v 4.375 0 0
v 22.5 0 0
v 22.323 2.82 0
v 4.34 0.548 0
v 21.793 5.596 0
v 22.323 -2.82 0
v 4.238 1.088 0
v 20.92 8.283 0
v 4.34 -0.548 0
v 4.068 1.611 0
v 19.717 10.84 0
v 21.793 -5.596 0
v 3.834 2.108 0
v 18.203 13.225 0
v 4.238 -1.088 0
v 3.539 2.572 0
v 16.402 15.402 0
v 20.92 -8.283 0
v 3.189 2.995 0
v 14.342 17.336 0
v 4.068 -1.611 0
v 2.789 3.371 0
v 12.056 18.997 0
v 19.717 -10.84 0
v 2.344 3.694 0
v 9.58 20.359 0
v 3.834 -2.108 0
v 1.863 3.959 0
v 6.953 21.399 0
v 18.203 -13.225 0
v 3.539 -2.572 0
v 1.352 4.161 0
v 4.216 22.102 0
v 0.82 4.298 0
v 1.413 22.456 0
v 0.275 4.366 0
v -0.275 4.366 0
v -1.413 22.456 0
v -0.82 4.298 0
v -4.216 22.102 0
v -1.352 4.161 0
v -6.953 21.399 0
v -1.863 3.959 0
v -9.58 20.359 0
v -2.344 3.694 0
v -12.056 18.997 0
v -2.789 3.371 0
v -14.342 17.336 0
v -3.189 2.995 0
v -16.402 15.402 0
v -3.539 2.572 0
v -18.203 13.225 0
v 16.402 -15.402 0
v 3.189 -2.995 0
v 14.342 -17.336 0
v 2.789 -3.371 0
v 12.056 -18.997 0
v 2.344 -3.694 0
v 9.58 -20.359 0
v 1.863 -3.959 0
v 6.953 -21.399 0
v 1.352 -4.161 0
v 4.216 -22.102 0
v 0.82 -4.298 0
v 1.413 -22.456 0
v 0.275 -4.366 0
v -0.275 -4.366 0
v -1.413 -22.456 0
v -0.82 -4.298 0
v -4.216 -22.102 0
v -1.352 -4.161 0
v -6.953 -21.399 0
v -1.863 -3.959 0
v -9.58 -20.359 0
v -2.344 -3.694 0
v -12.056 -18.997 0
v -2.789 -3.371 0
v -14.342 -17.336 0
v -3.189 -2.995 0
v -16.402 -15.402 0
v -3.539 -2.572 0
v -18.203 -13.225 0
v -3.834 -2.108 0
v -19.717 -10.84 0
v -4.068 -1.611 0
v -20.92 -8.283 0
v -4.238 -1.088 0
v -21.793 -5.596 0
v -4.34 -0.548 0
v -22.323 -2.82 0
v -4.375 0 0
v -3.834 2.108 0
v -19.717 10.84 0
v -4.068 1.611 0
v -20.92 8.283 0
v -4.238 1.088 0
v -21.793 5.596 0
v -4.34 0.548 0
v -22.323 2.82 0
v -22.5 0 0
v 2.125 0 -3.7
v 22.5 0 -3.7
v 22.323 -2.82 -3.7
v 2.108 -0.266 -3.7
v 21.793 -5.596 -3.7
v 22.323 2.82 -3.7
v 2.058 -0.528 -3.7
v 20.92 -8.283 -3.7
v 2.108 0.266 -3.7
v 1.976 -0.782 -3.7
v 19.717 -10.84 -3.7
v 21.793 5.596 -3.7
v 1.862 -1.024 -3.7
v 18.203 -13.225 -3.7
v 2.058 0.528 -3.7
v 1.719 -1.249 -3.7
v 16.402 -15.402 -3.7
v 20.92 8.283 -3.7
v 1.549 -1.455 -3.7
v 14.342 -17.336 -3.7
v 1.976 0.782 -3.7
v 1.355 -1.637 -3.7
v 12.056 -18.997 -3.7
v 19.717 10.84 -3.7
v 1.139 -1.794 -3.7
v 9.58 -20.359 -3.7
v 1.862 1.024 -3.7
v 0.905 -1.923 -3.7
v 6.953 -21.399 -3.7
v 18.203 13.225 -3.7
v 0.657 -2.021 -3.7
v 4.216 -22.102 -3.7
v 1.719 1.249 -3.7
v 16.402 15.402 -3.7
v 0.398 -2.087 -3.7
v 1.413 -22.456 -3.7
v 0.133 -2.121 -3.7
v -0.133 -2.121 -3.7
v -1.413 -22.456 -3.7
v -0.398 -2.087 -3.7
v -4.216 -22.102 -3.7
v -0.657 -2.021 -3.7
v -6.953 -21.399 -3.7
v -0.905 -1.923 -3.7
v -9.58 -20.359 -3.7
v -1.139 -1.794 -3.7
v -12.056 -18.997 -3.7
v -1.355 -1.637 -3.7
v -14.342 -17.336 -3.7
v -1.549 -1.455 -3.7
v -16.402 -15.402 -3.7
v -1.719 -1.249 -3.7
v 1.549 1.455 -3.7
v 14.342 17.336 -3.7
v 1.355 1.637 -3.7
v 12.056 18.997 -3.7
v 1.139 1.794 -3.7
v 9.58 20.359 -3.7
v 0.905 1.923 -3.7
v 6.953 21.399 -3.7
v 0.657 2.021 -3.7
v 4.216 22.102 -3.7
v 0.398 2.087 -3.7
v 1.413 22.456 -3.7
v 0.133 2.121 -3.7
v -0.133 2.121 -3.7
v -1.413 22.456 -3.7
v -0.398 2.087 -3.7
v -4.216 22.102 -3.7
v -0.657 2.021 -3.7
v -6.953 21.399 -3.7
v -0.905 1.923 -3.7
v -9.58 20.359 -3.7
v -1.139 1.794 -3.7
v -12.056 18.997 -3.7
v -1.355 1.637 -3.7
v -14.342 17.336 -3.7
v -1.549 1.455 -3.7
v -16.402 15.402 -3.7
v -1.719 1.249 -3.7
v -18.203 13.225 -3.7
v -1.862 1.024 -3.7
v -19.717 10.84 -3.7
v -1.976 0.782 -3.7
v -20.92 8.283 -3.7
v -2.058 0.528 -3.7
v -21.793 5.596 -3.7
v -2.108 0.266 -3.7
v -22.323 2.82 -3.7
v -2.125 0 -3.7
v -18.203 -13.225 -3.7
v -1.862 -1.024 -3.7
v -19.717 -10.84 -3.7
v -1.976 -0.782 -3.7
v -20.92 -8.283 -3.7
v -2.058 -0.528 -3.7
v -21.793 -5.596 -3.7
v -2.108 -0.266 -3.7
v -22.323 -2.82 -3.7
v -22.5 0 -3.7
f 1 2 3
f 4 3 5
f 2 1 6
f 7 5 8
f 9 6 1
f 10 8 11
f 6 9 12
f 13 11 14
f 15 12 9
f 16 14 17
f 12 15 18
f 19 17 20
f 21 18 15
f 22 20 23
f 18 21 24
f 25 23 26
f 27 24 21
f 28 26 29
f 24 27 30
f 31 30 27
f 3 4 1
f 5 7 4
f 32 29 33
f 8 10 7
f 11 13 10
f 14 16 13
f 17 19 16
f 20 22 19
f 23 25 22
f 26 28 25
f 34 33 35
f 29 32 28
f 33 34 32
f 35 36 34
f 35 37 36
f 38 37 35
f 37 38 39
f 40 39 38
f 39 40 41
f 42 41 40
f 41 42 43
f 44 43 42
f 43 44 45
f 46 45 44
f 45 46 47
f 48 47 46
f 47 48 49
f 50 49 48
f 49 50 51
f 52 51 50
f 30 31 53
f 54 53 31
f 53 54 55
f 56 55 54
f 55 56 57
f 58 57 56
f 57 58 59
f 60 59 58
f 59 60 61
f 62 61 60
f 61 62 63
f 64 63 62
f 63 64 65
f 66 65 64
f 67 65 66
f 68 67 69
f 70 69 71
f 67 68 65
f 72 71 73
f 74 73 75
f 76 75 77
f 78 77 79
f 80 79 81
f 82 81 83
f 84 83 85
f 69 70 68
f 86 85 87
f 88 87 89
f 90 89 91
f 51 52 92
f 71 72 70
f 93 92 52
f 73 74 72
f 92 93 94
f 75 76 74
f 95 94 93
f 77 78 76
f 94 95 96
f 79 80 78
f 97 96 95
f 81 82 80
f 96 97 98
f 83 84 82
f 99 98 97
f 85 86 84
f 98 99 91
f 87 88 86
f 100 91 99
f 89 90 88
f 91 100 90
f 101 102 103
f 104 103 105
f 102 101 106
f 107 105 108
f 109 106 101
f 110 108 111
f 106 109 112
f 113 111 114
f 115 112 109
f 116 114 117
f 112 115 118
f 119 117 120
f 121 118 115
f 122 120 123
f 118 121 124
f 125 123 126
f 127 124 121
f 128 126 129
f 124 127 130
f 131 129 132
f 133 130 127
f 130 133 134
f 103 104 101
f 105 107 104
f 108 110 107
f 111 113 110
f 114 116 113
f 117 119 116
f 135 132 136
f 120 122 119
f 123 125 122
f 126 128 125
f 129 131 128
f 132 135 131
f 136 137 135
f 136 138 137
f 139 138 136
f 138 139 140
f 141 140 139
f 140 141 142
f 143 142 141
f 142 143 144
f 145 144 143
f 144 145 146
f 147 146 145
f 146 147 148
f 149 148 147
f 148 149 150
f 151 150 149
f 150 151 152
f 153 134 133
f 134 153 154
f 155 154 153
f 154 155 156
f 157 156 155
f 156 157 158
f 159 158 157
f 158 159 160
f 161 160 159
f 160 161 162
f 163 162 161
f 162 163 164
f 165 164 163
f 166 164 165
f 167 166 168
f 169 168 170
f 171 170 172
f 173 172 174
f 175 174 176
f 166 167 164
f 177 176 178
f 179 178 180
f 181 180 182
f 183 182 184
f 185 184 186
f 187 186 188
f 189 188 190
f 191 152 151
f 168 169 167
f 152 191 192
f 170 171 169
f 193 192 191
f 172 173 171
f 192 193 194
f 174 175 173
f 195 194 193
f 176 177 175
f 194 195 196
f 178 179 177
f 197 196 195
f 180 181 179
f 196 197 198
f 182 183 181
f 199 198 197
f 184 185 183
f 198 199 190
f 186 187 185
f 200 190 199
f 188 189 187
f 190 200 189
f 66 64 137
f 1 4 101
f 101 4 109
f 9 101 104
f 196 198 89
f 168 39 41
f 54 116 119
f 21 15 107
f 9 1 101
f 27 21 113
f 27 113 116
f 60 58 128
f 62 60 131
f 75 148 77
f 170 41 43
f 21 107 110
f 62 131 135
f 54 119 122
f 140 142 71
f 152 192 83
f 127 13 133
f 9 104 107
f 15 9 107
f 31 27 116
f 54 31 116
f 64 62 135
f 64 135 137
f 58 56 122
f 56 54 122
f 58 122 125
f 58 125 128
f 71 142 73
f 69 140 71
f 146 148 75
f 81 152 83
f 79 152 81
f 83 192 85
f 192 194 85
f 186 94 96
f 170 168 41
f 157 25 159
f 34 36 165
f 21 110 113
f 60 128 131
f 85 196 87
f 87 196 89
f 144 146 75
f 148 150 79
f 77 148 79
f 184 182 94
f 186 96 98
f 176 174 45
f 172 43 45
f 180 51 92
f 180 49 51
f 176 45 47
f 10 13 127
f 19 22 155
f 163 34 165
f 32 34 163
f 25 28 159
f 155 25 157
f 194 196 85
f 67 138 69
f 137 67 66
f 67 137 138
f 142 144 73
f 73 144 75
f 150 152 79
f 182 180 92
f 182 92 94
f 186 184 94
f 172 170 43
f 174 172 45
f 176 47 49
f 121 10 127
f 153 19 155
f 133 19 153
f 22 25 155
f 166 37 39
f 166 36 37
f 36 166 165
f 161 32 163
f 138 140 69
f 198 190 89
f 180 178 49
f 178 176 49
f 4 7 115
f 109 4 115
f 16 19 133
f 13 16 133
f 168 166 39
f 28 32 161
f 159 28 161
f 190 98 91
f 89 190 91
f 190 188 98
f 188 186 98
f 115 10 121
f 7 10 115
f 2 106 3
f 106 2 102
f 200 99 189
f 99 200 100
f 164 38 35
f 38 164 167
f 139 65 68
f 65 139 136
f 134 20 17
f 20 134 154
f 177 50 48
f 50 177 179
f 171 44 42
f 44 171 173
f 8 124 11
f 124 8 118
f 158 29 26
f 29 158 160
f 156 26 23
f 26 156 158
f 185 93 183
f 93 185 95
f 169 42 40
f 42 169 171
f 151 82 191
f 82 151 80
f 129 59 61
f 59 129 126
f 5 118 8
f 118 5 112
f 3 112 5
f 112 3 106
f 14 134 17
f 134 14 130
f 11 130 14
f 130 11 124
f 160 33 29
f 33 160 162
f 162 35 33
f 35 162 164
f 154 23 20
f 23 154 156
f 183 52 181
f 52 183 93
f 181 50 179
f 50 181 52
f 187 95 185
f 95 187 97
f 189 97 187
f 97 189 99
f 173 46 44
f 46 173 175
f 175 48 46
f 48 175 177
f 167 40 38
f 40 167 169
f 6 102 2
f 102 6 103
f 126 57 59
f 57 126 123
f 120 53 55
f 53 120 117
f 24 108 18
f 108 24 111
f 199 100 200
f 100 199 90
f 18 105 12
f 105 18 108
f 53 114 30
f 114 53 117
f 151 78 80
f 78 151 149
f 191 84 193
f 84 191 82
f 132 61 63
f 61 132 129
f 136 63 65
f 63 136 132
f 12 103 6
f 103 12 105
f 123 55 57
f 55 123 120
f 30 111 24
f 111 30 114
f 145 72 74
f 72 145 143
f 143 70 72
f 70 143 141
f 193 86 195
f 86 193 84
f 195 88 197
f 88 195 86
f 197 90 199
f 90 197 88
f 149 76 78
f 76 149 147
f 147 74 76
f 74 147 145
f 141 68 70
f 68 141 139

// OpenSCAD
$fn = 50;


difference() {
	union() {
		translate(v = [0, 0, -3.7000000000]) {
			cylinder(h = 3.7000000000, r = 22.5000000000);
		}
	}
	union() {
		translate(v = [0, 0, 0]) {
			rotate(a = [0, 0, 0]) {
				difference() {
					union() {
						#translate(v = [0, 0, -3.7000000000]) {
							cylinder(h = 3.7000000000, r = 2.0000000000);
						}
						#translate(v = [0, 0, -3.7000000000]) {
							cylinder(h = 3.7000000000, r1 = 2.1250000000, r2 = 4.3750000000);
						}
						#translate(v = [0, 0, -3.7000000000]) {
							cylinder(h = 3.7000000000, r = 2.1250000000);
						}
						#translate(v = [0, 0, -3.7000000000]) {
							cylinder(h = 3.7000000000, r = 2.0000000000);
						}
					}
					union();
				}
			}
		}
	}
}
